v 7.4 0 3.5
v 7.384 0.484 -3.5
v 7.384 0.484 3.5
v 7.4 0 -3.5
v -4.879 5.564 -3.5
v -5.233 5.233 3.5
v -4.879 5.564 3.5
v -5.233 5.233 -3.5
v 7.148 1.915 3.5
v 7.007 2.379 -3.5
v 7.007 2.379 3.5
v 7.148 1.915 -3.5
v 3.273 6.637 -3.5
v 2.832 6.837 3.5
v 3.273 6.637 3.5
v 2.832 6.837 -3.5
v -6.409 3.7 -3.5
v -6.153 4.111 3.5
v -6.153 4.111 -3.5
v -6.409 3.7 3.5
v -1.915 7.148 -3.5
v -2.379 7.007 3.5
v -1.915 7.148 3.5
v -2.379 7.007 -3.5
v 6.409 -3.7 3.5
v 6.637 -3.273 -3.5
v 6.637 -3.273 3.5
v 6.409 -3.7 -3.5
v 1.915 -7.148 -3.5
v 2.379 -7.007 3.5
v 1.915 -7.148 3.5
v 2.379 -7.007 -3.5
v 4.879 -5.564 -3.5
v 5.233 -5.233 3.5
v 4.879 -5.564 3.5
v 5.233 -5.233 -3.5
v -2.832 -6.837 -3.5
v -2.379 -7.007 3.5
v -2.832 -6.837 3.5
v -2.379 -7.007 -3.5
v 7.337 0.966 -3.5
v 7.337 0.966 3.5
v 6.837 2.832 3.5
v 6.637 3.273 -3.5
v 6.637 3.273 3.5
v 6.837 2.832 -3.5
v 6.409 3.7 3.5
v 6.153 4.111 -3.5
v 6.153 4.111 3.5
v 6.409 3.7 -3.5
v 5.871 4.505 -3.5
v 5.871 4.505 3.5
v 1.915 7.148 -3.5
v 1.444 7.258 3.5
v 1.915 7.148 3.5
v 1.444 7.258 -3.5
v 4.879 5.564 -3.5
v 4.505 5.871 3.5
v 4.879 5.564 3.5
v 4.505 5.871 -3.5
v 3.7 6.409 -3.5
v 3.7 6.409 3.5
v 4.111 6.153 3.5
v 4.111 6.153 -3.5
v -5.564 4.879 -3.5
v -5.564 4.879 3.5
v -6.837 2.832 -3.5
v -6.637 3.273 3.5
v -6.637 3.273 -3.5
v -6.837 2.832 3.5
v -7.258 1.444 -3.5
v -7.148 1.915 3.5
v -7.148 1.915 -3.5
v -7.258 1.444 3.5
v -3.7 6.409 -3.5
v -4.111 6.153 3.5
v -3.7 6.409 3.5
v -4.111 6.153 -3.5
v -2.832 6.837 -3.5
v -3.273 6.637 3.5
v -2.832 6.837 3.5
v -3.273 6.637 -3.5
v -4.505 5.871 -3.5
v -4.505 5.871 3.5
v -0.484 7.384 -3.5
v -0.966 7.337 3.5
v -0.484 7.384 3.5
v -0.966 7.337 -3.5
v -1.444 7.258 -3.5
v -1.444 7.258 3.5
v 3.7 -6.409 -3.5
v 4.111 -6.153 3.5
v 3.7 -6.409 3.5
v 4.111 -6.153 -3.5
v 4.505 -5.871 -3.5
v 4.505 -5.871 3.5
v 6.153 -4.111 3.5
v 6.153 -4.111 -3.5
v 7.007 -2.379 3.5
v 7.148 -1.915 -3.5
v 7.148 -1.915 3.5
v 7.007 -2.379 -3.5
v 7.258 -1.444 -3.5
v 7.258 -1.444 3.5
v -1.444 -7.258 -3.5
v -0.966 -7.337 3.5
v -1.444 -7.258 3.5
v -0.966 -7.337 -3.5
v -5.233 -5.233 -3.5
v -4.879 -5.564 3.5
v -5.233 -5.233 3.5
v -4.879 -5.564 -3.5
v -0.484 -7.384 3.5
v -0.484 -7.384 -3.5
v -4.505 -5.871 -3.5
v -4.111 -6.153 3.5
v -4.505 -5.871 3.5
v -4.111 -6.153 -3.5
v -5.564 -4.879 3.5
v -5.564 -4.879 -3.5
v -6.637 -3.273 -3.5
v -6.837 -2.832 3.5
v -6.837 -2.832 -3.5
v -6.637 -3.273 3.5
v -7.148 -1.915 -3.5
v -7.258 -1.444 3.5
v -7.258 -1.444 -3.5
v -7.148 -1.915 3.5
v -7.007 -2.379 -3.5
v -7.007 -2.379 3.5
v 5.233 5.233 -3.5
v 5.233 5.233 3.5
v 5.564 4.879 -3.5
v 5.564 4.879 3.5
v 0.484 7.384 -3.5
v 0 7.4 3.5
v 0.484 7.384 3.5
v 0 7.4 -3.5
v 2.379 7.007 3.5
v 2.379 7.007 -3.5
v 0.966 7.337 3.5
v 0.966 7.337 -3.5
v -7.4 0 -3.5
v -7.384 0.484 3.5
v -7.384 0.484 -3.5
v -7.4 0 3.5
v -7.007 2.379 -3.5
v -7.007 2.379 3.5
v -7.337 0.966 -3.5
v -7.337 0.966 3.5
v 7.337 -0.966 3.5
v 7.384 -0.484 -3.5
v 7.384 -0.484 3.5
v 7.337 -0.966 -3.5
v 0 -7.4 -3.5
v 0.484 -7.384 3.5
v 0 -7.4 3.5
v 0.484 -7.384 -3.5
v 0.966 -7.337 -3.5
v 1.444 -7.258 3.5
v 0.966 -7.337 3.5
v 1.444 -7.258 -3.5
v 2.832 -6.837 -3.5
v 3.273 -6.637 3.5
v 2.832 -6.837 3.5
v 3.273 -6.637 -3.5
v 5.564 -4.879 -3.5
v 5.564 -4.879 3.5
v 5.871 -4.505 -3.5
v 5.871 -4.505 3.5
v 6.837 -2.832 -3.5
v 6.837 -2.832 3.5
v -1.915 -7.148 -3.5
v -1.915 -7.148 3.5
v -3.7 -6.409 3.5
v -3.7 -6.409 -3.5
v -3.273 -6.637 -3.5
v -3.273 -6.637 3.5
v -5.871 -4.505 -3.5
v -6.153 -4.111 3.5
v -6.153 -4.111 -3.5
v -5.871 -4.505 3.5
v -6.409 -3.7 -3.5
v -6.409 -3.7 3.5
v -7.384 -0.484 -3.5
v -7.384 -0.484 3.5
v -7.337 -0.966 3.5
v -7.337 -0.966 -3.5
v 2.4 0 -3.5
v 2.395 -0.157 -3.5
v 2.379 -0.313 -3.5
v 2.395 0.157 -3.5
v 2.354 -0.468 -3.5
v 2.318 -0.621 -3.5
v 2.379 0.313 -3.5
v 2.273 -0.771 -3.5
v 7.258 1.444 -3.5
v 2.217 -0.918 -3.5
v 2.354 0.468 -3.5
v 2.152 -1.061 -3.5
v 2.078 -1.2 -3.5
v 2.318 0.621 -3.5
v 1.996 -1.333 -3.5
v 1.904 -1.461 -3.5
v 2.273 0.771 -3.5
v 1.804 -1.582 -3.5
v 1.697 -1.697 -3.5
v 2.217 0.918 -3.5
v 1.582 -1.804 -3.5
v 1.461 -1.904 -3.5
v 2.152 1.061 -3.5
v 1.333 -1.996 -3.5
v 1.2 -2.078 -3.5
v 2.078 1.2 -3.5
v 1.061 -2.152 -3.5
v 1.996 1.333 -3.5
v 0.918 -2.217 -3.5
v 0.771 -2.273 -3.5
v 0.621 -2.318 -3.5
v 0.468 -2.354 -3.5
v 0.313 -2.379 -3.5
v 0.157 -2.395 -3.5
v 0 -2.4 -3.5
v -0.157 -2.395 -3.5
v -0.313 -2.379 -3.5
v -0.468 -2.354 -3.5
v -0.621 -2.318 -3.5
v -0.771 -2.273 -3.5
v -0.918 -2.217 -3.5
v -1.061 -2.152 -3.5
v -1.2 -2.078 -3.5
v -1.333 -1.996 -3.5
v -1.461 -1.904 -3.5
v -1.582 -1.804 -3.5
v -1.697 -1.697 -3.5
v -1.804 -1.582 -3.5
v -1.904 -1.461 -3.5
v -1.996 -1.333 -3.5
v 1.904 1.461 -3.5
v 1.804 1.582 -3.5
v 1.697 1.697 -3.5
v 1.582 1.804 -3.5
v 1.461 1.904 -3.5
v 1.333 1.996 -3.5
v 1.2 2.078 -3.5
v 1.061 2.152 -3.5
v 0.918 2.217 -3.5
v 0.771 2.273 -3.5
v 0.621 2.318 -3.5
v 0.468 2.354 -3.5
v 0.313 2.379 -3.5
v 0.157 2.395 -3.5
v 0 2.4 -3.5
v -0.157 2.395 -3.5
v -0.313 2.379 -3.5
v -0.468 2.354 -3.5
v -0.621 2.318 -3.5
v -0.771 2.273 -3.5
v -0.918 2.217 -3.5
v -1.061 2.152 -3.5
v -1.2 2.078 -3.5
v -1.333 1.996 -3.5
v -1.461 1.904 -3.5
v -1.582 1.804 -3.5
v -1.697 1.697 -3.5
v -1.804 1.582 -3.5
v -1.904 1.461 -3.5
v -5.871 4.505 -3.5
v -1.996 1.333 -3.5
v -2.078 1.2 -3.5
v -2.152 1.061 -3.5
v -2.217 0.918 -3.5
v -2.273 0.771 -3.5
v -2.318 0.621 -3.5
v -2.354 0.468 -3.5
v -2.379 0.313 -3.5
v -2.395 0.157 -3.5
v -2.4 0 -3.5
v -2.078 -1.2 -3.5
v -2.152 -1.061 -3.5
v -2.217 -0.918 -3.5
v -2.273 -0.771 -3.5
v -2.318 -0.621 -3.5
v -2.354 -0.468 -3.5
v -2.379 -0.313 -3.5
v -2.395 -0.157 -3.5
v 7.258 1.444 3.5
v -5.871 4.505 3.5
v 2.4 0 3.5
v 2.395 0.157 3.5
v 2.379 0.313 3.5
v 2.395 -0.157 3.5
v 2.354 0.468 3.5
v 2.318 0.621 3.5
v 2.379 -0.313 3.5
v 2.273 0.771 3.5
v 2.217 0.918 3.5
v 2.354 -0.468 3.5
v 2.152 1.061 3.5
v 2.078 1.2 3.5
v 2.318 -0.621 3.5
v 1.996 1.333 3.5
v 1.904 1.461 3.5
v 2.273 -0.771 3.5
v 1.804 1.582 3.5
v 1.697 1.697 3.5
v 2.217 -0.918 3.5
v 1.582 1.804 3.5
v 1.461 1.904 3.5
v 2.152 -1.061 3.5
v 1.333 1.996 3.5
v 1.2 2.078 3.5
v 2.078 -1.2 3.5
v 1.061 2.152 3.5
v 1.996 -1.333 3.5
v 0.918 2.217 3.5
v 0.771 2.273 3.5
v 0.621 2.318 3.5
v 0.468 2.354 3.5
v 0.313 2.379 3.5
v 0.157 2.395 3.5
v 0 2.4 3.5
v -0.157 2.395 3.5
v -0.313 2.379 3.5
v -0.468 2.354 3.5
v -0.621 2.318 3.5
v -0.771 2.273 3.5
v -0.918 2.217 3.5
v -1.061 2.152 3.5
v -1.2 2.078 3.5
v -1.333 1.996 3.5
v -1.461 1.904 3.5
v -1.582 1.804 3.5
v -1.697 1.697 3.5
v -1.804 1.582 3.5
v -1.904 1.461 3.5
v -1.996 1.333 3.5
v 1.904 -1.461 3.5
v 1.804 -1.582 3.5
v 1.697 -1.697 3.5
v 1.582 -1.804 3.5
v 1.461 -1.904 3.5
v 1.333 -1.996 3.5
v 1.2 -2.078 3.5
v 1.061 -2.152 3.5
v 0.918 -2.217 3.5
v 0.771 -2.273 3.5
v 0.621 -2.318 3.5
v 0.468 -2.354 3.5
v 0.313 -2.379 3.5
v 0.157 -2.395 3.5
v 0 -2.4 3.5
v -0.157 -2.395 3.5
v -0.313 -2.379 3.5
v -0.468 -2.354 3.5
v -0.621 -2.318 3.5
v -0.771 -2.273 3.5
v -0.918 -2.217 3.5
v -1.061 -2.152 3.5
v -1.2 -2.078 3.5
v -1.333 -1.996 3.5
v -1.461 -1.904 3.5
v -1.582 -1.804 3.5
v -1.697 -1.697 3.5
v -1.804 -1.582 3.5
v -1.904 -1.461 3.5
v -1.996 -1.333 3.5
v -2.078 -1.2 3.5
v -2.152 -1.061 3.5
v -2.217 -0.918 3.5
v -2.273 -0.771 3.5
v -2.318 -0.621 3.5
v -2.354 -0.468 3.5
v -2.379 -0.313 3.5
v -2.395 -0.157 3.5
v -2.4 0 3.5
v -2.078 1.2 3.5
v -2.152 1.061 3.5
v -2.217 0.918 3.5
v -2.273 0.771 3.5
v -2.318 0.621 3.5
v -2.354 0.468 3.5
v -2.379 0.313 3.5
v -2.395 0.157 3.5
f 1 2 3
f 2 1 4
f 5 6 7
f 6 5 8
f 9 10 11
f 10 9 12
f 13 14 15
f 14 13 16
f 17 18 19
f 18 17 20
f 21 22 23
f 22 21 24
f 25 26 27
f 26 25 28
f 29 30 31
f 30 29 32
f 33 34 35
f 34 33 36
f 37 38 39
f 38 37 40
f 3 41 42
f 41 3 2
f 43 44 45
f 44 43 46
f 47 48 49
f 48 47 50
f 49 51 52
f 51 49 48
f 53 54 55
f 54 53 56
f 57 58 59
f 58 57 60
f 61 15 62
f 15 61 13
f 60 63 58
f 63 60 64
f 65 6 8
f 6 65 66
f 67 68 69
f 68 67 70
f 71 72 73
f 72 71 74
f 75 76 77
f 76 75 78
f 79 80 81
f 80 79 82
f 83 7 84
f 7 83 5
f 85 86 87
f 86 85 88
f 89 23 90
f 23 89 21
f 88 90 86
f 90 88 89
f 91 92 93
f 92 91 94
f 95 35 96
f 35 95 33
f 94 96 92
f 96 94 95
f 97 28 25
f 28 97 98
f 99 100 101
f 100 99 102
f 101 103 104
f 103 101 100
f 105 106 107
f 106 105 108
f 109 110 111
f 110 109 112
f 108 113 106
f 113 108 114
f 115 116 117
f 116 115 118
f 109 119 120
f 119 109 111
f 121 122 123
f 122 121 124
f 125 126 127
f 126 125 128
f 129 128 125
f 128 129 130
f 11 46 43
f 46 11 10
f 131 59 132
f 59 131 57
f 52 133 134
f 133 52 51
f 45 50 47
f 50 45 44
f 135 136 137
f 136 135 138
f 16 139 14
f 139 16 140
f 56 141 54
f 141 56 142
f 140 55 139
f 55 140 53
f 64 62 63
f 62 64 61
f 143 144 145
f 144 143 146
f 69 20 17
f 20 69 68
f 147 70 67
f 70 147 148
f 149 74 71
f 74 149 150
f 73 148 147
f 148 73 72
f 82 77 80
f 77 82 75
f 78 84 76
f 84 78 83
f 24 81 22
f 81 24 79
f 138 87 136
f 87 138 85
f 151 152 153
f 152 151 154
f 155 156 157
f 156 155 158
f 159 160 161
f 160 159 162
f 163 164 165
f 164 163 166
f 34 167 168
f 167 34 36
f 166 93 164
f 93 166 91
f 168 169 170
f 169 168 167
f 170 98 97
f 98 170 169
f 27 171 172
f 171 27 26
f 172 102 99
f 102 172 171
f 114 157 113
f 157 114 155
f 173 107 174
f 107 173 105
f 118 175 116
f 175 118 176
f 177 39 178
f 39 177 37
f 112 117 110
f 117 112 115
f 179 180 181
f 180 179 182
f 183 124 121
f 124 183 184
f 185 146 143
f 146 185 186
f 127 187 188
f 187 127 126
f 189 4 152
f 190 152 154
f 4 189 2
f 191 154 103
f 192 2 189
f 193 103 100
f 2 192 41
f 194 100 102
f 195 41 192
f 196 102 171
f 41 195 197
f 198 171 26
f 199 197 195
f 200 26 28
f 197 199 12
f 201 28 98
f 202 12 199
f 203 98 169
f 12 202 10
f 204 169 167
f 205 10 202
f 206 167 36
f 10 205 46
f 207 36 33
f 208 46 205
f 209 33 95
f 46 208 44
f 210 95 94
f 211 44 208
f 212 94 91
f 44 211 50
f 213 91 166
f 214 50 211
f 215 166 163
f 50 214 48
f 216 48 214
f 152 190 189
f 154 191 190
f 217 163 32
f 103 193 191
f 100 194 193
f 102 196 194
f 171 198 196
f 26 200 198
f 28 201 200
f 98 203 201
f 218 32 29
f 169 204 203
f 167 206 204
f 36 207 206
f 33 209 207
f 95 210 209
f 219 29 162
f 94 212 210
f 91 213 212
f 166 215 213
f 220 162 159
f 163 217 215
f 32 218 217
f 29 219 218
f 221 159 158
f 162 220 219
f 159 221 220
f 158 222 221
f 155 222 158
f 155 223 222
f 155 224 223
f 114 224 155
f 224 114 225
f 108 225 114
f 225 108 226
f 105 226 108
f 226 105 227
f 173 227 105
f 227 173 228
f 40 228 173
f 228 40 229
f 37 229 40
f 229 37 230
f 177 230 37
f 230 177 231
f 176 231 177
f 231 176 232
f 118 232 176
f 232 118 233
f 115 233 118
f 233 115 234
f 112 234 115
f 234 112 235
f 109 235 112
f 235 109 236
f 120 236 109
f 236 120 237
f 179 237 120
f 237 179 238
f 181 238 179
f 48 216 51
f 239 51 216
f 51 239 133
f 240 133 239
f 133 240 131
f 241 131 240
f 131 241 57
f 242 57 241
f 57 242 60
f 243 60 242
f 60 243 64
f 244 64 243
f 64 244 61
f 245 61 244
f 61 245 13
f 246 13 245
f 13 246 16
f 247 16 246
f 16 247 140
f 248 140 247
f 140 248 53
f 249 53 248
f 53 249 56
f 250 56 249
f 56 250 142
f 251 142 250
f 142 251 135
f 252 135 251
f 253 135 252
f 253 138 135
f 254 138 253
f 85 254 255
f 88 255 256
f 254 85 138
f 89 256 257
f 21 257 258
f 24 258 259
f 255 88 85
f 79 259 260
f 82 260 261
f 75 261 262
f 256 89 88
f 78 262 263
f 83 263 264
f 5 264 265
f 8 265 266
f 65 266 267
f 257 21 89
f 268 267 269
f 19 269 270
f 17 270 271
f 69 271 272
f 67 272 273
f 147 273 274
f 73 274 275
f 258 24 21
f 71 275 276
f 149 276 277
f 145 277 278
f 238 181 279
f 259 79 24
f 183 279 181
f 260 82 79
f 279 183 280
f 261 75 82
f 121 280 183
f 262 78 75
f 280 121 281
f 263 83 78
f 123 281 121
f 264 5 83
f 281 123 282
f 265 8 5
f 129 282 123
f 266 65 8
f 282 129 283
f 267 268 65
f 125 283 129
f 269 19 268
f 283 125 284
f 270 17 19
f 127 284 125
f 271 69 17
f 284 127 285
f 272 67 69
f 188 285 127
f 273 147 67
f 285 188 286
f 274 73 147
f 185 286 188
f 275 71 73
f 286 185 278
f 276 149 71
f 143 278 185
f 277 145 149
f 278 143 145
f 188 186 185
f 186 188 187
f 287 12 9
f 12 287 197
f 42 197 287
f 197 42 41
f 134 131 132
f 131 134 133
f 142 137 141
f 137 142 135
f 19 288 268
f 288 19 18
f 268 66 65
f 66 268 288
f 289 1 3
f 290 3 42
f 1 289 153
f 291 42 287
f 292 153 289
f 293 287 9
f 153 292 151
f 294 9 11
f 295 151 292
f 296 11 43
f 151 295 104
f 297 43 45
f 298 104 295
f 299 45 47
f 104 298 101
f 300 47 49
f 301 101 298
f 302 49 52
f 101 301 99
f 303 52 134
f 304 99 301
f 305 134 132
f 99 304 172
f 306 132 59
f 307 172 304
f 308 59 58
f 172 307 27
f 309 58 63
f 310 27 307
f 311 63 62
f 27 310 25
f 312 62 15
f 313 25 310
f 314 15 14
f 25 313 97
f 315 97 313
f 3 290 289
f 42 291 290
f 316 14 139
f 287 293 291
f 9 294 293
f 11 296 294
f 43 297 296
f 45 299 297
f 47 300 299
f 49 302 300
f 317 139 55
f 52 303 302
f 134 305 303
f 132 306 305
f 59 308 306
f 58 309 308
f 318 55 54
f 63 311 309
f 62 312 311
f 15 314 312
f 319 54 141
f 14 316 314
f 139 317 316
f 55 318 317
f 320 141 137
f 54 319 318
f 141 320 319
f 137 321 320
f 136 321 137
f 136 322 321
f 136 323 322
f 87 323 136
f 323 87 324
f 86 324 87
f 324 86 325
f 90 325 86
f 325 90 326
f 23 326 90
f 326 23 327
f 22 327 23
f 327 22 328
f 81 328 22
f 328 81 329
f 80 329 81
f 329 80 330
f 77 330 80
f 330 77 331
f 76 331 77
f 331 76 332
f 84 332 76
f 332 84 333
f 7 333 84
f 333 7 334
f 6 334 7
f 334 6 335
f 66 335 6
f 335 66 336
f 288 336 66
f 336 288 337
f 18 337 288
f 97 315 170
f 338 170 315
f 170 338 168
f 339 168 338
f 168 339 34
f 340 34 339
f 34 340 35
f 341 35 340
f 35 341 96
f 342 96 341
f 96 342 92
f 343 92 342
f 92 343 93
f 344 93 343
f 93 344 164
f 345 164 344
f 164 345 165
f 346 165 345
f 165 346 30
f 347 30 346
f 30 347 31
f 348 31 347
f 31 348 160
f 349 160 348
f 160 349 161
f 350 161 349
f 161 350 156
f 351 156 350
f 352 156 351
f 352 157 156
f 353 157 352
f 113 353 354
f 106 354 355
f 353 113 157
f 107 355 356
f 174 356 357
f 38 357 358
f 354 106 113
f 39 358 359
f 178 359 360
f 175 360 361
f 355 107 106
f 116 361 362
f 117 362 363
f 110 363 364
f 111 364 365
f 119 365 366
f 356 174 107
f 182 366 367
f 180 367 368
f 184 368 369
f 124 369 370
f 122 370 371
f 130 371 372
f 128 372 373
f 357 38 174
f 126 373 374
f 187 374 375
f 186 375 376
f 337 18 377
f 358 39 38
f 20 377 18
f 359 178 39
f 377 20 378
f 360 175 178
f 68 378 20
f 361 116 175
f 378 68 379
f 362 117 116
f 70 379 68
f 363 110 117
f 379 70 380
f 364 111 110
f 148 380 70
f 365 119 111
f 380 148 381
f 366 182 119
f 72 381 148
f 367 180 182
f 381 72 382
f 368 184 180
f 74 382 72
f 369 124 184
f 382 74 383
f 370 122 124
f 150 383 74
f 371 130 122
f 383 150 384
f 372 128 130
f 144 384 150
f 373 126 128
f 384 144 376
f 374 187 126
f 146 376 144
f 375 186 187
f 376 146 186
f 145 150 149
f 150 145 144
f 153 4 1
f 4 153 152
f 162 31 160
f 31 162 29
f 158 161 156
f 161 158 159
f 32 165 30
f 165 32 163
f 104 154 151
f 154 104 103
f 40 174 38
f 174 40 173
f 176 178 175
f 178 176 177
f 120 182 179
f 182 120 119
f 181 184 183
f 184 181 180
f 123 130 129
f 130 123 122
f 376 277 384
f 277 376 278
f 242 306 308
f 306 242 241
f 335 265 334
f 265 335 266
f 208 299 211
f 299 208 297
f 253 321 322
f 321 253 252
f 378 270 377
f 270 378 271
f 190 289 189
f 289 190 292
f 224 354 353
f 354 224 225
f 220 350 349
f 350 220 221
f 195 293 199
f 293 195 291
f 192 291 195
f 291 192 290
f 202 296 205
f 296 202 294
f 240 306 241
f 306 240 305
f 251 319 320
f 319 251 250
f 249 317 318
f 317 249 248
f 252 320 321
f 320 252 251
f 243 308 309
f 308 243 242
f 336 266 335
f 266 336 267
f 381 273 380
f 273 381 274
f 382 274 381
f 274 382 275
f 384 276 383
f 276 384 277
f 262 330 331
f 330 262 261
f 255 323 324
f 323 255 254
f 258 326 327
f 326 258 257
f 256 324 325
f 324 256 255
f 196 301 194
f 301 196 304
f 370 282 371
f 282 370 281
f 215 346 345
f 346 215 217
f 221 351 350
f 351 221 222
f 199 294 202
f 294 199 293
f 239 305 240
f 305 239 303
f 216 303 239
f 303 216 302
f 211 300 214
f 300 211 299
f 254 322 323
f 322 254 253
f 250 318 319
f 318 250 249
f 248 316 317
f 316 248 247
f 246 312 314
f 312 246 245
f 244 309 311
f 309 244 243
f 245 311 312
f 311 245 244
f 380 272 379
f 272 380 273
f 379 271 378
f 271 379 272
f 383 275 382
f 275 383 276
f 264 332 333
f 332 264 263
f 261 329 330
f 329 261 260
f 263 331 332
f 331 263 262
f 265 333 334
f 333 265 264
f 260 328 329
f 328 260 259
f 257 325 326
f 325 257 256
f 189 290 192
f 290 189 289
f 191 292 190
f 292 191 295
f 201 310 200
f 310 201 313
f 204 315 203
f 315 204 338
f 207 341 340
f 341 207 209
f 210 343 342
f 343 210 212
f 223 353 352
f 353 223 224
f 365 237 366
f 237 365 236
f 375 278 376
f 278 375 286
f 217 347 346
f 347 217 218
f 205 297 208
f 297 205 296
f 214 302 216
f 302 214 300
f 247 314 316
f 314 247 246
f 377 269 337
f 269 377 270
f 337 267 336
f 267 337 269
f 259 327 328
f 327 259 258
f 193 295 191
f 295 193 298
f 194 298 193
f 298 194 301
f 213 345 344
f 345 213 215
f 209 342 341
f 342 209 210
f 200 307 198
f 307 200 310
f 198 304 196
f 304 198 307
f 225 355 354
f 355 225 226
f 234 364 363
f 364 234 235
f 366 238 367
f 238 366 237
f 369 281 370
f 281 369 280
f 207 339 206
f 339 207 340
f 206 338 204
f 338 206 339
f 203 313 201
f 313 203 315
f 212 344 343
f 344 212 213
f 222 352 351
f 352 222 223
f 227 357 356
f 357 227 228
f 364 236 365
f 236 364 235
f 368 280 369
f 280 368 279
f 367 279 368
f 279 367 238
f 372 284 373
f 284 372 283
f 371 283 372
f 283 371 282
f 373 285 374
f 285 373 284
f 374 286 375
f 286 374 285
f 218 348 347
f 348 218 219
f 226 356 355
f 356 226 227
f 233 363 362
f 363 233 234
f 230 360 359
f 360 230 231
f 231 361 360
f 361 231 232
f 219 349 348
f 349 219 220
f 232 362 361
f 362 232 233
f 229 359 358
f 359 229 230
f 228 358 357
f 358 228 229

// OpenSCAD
// Spacers between midpart and backpart of Z core
// 6 pieces


M4=4.8;        // for easy insertion on M4 bold  
Height=7;


difference()
{
cylinder(h=Height,d=M4+10,center=true,$fn=96);// 9+4.8=13.8
 cylinder(h=Height+1,d=M4,center=true,$fn=96) ;  
    
}
